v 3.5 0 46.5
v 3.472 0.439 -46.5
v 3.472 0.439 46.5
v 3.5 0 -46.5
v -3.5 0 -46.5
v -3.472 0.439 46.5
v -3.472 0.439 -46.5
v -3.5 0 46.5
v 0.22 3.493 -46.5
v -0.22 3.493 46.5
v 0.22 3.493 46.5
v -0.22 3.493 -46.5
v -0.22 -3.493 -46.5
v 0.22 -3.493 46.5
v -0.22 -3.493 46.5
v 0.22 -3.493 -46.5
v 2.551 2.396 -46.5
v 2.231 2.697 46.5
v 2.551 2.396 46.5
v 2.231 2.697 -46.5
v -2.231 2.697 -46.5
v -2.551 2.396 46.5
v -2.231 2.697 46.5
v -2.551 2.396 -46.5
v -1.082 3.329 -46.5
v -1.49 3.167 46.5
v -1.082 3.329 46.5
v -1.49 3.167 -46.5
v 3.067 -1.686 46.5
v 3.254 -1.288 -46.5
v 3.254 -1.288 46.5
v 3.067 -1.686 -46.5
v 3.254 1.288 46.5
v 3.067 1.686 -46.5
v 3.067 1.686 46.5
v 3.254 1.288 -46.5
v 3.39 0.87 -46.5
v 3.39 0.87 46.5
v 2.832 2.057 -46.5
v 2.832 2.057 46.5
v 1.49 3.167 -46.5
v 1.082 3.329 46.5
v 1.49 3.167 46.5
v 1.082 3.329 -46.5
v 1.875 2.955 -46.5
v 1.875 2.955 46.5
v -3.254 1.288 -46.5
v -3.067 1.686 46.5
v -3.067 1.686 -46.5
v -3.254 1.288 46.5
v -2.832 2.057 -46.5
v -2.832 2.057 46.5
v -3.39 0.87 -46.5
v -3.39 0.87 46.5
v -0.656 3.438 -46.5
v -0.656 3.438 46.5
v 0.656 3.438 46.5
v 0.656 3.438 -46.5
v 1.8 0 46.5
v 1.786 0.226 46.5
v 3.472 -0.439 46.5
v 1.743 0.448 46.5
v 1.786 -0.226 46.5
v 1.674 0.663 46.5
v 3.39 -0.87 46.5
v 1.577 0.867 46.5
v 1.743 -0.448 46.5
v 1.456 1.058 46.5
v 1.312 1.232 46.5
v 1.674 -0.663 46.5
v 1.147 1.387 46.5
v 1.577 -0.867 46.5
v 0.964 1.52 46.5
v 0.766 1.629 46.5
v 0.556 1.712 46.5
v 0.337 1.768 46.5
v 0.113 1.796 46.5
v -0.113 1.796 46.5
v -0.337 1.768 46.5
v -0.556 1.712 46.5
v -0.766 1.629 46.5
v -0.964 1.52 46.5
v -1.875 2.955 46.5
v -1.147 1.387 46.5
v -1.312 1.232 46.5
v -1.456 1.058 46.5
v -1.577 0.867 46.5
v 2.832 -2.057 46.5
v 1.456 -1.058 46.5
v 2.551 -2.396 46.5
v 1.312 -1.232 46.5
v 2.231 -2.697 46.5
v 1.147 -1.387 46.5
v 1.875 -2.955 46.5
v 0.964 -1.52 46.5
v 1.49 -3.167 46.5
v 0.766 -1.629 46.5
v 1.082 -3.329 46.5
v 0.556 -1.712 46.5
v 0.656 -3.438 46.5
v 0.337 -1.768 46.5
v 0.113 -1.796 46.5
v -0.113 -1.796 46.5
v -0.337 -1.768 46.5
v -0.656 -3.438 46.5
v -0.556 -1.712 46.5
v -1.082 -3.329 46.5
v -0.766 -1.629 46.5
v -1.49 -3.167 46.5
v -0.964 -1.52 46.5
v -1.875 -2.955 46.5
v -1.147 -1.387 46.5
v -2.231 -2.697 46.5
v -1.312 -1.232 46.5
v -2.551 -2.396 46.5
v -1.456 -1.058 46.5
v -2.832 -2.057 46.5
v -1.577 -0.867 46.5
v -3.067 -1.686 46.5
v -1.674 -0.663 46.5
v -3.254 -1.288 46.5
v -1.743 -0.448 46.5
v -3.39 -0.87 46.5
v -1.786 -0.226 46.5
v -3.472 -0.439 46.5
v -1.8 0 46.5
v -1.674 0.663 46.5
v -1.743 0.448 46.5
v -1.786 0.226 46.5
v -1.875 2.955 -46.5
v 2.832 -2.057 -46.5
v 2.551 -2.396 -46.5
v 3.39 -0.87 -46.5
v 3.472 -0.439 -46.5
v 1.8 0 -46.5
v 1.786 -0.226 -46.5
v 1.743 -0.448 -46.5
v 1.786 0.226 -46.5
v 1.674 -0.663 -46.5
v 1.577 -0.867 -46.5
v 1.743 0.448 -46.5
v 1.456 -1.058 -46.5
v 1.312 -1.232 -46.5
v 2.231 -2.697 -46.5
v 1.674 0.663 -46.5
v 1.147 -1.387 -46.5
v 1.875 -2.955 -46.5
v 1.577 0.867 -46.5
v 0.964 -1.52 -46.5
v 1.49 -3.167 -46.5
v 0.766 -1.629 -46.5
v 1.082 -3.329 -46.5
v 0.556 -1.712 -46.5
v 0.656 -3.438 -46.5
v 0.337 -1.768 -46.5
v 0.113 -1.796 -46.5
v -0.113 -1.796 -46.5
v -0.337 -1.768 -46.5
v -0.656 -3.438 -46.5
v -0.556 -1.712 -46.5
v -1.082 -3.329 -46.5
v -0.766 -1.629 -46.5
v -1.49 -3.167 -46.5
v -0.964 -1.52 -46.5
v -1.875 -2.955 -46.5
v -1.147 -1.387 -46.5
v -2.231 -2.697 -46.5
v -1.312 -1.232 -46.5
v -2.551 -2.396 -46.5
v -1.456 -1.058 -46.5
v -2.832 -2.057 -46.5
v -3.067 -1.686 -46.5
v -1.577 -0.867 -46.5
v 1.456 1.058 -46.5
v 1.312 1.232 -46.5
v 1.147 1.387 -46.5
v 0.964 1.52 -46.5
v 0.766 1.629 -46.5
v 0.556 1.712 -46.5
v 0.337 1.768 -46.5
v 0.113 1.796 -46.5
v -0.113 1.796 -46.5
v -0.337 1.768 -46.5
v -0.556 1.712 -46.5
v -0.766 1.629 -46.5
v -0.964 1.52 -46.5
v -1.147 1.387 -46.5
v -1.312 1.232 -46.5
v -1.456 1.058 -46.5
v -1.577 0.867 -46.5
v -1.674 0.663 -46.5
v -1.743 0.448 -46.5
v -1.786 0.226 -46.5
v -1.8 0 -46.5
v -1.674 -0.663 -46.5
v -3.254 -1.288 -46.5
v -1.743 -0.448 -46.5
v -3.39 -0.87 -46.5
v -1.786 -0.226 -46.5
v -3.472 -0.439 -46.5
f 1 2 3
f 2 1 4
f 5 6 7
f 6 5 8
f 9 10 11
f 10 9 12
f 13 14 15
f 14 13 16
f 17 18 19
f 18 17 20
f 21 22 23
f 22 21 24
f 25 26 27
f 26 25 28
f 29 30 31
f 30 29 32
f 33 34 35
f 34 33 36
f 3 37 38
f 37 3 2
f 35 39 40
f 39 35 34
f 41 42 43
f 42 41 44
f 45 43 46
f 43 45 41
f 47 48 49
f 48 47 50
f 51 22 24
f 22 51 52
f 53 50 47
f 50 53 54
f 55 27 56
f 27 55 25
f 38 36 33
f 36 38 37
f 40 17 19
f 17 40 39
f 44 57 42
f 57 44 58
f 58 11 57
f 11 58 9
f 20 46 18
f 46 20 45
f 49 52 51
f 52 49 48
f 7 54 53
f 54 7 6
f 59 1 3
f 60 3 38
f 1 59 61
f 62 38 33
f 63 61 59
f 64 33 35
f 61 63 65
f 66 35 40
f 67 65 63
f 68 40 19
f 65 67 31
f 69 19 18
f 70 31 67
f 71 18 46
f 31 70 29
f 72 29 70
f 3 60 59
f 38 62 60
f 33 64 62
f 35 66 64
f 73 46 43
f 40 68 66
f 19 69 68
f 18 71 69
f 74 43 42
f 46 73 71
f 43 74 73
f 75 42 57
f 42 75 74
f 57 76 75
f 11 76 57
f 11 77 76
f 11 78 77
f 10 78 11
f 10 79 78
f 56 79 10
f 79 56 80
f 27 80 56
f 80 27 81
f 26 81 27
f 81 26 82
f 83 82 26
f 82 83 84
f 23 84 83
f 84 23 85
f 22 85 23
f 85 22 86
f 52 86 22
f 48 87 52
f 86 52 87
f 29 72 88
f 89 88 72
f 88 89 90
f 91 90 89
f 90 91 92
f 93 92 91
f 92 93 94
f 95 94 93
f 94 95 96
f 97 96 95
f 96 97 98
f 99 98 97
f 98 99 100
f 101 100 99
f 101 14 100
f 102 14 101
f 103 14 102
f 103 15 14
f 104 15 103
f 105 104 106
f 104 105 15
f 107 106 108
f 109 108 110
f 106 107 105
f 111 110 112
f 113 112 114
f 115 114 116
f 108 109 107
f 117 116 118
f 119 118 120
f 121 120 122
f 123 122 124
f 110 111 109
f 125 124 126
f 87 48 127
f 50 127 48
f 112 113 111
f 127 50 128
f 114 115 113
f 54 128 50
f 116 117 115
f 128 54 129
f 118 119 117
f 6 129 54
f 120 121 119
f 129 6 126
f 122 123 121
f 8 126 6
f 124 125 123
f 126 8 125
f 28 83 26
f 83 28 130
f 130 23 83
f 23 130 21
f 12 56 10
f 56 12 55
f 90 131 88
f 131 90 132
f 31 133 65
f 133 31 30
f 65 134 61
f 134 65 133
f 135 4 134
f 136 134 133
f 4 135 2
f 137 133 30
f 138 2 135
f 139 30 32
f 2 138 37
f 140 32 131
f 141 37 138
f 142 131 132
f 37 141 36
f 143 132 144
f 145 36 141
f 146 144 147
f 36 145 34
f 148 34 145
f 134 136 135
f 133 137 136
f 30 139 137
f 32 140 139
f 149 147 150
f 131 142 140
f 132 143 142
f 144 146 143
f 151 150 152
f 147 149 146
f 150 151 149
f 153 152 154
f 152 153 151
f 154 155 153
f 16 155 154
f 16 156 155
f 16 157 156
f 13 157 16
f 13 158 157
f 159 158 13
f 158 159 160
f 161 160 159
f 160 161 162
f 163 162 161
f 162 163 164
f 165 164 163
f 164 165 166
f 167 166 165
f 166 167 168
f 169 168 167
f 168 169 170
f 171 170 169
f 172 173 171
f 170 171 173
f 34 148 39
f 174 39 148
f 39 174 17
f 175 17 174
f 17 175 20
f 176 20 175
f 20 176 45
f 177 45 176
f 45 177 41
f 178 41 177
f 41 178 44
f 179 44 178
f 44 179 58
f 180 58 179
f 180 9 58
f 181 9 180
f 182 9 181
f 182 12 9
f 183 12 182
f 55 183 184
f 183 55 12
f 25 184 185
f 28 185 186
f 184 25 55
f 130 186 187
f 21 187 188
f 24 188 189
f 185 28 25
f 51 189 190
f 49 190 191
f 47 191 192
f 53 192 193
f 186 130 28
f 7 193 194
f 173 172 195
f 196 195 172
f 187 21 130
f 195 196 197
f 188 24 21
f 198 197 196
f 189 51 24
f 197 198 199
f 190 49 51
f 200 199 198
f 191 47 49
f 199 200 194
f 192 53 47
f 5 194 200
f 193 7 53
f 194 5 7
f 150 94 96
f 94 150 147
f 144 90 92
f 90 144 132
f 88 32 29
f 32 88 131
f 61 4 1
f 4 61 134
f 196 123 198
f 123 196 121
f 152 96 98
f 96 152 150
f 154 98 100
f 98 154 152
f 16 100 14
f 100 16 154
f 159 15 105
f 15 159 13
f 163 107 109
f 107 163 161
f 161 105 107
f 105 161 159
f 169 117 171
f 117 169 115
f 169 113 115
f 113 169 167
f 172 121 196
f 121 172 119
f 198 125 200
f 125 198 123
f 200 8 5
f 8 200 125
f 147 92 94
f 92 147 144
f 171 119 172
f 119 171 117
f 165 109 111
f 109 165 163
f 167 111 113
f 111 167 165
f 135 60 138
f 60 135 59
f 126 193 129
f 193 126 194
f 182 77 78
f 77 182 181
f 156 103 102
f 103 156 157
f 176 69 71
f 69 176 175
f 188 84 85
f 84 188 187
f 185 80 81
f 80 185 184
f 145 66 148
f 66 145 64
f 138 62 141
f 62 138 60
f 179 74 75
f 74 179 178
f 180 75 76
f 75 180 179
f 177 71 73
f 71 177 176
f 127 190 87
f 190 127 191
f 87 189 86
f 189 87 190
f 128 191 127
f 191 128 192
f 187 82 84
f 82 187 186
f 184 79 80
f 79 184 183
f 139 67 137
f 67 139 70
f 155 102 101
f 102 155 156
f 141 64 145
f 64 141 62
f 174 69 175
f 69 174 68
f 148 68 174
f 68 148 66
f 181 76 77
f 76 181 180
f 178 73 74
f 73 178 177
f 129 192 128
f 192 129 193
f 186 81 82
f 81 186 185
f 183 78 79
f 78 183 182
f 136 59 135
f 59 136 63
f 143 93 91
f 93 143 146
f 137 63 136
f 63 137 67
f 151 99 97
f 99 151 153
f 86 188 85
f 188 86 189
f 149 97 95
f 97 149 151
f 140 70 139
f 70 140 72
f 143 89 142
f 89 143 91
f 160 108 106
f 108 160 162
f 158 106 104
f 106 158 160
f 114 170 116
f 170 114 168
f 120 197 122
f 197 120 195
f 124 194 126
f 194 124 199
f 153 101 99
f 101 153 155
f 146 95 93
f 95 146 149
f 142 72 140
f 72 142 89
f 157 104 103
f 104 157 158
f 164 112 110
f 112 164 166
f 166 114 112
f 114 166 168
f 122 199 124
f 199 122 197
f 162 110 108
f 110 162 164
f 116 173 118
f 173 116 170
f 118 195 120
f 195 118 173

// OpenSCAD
$fn = 50;


difference() {
	union() {
		translate(v = [0, 0, -46.5000000000]) {
			cylinder(h = 93, r = 3.5000000000);
		}
	}
	union() {
		translate(v = [0, 0, -100.0000000000]) {
			cylinder(h = 200, r = 1.8000000000);
		}
	}
}
